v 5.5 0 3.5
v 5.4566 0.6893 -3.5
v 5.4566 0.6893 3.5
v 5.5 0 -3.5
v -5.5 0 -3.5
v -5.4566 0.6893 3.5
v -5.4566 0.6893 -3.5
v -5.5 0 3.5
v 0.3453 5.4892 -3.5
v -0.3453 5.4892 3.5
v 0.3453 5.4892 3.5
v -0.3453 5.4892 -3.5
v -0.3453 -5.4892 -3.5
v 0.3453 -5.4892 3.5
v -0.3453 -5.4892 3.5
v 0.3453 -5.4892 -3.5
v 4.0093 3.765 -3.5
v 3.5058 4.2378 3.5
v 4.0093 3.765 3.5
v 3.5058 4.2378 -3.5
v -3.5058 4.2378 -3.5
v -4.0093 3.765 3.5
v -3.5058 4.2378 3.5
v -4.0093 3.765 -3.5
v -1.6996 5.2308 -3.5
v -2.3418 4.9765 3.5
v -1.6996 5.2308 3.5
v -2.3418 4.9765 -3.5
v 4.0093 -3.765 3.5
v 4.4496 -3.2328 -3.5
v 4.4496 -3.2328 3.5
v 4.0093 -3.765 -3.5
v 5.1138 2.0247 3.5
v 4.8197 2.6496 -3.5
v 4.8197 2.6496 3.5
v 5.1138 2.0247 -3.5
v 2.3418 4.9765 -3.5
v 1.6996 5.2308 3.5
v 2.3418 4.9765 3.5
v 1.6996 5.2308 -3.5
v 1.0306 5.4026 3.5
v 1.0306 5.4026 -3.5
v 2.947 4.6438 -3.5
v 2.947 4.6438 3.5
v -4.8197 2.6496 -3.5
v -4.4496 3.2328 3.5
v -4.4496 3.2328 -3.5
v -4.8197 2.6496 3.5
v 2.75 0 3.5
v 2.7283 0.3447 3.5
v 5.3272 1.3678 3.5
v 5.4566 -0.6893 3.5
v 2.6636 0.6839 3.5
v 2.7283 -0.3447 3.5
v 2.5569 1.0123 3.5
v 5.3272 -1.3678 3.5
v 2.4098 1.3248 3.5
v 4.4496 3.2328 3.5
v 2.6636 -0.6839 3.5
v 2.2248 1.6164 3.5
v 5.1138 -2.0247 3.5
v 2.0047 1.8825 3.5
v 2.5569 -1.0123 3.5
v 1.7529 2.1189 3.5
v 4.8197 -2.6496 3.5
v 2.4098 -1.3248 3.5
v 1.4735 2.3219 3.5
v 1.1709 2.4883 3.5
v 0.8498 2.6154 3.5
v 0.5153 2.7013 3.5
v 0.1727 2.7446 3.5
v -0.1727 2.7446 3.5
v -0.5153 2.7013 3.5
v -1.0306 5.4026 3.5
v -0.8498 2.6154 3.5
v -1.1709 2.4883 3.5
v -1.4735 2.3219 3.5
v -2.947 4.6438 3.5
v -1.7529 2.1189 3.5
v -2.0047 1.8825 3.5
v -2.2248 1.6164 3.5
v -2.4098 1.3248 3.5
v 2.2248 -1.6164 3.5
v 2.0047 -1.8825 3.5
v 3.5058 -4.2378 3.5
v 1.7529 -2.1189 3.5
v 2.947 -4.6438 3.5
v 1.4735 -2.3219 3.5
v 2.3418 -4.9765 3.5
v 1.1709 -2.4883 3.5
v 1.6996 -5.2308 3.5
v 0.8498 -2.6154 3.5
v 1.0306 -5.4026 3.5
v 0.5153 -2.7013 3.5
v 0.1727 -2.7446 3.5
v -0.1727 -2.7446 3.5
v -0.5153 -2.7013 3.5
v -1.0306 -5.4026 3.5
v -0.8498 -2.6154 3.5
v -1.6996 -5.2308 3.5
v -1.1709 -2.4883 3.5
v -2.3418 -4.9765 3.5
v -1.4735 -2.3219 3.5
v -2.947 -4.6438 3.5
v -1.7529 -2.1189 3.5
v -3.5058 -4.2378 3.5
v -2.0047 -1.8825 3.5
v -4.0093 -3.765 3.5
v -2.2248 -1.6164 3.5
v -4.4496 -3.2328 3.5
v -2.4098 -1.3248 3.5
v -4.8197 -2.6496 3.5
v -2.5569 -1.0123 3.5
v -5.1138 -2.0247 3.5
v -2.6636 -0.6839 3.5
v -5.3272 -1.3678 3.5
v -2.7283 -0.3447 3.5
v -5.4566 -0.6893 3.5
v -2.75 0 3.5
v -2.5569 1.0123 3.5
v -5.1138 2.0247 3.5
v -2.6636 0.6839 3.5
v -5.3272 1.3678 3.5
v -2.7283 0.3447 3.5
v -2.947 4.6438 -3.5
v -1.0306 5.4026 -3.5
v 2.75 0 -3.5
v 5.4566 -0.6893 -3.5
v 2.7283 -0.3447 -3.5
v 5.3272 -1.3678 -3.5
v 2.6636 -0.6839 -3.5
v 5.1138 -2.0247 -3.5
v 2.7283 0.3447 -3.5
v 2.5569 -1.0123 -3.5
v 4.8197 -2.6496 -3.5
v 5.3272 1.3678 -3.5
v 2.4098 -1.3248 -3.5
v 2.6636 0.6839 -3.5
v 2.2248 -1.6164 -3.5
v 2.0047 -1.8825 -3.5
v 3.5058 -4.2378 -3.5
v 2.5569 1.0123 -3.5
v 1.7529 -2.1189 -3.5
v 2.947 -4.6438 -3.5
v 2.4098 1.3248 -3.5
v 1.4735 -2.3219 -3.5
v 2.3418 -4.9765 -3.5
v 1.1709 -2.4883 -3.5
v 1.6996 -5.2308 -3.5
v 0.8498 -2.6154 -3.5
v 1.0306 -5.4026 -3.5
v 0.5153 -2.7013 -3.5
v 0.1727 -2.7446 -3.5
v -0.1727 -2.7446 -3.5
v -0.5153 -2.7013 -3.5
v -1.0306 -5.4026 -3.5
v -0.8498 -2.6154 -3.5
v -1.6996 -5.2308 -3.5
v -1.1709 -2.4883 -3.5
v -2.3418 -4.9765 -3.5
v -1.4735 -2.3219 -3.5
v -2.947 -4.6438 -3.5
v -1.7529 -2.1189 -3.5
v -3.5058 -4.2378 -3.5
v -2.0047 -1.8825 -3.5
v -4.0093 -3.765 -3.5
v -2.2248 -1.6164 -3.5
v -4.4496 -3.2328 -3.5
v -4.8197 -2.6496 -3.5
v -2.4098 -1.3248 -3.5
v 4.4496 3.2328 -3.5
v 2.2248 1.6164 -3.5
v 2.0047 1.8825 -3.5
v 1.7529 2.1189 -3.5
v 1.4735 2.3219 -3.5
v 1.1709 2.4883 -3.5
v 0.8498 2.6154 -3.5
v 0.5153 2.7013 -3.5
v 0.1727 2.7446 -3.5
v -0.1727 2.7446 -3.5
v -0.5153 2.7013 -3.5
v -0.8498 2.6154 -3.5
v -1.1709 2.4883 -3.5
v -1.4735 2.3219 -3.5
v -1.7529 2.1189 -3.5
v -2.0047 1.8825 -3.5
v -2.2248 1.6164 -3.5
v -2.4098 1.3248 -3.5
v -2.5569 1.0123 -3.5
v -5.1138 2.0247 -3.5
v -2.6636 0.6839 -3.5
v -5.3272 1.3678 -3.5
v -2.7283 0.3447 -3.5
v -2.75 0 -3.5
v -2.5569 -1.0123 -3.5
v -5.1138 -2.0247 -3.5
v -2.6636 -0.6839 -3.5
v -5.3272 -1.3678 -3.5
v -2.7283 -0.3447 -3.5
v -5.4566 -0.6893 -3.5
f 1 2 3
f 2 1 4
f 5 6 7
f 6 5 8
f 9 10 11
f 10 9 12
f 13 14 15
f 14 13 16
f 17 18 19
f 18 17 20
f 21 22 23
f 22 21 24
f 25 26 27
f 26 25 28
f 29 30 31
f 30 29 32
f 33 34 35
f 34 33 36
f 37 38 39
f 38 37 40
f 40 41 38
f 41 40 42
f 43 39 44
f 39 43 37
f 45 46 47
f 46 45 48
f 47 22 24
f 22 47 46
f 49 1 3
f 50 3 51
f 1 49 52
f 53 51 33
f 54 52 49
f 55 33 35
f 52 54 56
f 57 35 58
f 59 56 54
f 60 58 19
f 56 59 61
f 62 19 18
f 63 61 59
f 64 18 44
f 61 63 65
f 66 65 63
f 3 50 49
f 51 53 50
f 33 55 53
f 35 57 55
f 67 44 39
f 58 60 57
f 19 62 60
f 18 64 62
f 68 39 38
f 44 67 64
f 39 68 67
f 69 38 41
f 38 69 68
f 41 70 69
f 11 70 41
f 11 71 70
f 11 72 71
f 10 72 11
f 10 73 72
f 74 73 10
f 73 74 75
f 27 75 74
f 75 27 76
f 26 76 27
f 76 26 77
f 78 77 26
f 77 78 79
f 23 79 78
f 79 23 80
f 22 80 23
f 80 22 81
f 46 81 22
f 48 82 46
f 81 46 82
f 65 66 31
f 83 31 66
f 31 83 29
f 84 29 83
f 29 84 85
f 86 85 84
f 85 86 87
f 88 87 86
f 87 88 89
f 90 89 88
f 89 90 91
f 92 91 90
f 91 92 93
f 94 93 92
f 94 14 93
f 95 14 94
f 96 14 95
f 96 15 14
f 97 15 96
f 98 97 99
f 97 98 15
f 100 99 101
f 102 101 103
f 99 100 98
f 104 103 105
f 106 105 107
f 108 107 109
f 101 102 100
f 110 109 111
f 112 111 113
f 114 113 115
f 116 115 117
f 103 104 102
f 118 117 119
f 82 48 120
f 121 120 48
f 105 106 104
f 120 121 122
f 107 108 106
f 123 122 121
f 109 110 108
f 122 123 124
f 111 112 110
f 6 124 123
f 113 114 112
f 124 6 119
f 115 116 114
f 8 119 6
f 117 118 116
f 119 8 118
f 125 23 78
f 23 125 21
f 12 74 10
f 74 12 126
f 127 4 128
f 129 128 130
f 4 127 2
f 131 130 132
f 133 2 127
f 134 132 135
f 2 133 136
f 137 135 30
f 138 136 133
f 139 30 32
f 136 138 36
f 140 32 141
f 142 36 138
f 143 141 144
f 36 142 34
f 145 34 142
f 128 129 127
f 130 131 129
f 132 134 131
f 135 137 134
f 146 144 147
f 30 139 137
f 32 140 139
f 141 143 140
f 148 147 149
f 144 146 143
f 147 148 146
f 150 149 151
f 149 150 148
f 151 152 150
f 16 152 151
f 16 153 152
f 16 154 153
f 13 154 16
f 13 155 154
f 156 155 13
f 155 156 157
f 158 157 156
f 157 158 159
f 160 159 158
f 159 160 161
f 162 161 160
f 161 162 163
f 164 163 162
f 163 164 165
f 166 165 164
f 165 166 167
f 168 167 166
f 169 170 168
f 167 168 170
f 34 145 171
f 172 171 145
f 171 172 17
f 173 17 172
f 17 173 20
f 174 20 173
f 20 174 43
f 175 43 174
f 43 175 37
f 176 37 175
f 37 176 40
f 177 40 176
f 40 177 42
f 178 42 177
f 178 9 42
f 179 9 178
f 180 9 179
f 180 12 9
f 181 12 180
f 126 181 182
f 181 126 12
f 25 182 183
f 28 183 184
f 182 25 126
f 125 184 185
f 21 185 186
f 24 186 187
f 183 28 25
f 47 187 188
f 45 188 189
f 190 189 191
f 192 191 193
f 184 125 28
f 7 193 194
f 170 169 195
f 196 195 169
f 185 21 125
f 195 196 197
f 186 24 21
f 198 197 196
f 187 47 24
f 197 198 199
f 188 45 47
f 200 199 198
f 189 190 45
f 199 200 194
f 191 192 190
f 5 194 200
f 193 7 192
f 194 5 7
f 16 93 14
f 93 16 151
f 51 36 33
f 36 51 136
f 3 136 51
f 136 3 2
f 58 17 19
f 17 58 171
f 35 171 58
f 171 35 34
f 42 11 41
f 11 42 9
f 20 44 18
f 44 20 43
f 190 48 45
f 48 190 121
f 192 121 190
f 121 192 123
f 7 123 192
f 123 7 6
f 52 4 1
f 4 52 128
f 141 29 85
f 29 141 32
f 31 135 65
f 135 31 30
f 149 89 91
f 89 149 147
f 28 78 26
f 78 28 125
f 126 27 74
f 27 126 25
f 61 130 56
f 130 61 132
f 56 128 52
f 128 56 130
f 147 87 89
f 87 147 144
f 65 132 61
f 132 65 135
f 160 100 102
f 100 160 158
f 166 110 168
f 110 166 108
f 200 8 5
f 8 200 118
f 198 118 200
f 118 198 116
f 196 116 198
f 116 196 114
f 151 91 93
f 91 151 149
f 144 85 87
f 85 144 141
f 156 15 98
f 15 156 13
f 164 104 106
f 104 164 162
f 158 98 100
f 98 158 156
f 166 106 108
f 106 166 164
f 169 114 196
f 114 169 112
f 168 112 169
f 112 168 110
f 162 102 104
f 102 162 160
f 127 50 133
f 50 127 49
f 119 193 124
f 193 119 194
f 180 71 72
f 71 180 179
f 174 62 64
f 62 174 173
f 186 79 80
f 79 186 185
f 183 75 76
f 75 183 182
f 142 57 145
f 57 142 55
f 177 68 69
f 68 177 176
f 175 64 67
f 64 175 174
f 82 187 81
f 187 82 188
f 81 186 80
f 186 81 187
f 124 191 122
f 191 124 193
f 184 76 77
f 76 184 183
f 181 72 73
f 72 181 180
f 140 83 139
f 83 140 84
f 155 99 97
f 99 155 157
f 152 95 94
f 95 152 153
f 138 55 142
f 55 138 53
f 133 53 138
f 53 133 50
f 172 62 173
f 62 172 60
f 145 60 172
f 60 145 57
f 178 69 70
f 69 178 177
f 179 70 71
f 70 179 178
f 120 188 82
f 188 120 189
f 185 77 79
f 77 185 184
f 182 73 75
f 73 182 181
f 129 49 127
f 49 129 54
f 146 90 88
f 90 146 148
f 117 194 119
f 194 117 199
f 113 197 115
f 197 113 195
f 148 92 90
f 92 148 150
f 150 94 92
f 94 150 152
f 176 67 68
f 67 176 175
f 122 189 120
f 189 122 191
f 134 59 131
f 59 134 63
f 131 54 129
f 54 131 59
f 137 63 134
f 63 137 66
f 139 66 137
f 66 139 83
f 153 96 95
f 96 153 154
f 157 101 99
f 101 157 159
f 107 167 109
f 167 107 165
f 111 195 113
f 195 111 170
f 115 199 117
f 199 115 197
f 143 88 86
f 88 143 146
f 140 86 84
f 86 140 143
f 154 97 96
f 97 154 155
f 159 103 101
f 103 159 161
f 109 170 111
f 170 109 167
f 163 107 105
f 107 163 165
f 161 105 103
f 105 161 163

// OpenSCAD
$fn = 50;


difference() {
	union() {
		translate(v = [0, 0, -3.5000000000]) {
			cylinder(h = 7, r = 5.5000000000);
		}
	}
	union() {
		translate(v = [0, 0, -100.0000000000]) {
			cylinder(h = 200, r = 2.7500000000);
		}
	}
}
